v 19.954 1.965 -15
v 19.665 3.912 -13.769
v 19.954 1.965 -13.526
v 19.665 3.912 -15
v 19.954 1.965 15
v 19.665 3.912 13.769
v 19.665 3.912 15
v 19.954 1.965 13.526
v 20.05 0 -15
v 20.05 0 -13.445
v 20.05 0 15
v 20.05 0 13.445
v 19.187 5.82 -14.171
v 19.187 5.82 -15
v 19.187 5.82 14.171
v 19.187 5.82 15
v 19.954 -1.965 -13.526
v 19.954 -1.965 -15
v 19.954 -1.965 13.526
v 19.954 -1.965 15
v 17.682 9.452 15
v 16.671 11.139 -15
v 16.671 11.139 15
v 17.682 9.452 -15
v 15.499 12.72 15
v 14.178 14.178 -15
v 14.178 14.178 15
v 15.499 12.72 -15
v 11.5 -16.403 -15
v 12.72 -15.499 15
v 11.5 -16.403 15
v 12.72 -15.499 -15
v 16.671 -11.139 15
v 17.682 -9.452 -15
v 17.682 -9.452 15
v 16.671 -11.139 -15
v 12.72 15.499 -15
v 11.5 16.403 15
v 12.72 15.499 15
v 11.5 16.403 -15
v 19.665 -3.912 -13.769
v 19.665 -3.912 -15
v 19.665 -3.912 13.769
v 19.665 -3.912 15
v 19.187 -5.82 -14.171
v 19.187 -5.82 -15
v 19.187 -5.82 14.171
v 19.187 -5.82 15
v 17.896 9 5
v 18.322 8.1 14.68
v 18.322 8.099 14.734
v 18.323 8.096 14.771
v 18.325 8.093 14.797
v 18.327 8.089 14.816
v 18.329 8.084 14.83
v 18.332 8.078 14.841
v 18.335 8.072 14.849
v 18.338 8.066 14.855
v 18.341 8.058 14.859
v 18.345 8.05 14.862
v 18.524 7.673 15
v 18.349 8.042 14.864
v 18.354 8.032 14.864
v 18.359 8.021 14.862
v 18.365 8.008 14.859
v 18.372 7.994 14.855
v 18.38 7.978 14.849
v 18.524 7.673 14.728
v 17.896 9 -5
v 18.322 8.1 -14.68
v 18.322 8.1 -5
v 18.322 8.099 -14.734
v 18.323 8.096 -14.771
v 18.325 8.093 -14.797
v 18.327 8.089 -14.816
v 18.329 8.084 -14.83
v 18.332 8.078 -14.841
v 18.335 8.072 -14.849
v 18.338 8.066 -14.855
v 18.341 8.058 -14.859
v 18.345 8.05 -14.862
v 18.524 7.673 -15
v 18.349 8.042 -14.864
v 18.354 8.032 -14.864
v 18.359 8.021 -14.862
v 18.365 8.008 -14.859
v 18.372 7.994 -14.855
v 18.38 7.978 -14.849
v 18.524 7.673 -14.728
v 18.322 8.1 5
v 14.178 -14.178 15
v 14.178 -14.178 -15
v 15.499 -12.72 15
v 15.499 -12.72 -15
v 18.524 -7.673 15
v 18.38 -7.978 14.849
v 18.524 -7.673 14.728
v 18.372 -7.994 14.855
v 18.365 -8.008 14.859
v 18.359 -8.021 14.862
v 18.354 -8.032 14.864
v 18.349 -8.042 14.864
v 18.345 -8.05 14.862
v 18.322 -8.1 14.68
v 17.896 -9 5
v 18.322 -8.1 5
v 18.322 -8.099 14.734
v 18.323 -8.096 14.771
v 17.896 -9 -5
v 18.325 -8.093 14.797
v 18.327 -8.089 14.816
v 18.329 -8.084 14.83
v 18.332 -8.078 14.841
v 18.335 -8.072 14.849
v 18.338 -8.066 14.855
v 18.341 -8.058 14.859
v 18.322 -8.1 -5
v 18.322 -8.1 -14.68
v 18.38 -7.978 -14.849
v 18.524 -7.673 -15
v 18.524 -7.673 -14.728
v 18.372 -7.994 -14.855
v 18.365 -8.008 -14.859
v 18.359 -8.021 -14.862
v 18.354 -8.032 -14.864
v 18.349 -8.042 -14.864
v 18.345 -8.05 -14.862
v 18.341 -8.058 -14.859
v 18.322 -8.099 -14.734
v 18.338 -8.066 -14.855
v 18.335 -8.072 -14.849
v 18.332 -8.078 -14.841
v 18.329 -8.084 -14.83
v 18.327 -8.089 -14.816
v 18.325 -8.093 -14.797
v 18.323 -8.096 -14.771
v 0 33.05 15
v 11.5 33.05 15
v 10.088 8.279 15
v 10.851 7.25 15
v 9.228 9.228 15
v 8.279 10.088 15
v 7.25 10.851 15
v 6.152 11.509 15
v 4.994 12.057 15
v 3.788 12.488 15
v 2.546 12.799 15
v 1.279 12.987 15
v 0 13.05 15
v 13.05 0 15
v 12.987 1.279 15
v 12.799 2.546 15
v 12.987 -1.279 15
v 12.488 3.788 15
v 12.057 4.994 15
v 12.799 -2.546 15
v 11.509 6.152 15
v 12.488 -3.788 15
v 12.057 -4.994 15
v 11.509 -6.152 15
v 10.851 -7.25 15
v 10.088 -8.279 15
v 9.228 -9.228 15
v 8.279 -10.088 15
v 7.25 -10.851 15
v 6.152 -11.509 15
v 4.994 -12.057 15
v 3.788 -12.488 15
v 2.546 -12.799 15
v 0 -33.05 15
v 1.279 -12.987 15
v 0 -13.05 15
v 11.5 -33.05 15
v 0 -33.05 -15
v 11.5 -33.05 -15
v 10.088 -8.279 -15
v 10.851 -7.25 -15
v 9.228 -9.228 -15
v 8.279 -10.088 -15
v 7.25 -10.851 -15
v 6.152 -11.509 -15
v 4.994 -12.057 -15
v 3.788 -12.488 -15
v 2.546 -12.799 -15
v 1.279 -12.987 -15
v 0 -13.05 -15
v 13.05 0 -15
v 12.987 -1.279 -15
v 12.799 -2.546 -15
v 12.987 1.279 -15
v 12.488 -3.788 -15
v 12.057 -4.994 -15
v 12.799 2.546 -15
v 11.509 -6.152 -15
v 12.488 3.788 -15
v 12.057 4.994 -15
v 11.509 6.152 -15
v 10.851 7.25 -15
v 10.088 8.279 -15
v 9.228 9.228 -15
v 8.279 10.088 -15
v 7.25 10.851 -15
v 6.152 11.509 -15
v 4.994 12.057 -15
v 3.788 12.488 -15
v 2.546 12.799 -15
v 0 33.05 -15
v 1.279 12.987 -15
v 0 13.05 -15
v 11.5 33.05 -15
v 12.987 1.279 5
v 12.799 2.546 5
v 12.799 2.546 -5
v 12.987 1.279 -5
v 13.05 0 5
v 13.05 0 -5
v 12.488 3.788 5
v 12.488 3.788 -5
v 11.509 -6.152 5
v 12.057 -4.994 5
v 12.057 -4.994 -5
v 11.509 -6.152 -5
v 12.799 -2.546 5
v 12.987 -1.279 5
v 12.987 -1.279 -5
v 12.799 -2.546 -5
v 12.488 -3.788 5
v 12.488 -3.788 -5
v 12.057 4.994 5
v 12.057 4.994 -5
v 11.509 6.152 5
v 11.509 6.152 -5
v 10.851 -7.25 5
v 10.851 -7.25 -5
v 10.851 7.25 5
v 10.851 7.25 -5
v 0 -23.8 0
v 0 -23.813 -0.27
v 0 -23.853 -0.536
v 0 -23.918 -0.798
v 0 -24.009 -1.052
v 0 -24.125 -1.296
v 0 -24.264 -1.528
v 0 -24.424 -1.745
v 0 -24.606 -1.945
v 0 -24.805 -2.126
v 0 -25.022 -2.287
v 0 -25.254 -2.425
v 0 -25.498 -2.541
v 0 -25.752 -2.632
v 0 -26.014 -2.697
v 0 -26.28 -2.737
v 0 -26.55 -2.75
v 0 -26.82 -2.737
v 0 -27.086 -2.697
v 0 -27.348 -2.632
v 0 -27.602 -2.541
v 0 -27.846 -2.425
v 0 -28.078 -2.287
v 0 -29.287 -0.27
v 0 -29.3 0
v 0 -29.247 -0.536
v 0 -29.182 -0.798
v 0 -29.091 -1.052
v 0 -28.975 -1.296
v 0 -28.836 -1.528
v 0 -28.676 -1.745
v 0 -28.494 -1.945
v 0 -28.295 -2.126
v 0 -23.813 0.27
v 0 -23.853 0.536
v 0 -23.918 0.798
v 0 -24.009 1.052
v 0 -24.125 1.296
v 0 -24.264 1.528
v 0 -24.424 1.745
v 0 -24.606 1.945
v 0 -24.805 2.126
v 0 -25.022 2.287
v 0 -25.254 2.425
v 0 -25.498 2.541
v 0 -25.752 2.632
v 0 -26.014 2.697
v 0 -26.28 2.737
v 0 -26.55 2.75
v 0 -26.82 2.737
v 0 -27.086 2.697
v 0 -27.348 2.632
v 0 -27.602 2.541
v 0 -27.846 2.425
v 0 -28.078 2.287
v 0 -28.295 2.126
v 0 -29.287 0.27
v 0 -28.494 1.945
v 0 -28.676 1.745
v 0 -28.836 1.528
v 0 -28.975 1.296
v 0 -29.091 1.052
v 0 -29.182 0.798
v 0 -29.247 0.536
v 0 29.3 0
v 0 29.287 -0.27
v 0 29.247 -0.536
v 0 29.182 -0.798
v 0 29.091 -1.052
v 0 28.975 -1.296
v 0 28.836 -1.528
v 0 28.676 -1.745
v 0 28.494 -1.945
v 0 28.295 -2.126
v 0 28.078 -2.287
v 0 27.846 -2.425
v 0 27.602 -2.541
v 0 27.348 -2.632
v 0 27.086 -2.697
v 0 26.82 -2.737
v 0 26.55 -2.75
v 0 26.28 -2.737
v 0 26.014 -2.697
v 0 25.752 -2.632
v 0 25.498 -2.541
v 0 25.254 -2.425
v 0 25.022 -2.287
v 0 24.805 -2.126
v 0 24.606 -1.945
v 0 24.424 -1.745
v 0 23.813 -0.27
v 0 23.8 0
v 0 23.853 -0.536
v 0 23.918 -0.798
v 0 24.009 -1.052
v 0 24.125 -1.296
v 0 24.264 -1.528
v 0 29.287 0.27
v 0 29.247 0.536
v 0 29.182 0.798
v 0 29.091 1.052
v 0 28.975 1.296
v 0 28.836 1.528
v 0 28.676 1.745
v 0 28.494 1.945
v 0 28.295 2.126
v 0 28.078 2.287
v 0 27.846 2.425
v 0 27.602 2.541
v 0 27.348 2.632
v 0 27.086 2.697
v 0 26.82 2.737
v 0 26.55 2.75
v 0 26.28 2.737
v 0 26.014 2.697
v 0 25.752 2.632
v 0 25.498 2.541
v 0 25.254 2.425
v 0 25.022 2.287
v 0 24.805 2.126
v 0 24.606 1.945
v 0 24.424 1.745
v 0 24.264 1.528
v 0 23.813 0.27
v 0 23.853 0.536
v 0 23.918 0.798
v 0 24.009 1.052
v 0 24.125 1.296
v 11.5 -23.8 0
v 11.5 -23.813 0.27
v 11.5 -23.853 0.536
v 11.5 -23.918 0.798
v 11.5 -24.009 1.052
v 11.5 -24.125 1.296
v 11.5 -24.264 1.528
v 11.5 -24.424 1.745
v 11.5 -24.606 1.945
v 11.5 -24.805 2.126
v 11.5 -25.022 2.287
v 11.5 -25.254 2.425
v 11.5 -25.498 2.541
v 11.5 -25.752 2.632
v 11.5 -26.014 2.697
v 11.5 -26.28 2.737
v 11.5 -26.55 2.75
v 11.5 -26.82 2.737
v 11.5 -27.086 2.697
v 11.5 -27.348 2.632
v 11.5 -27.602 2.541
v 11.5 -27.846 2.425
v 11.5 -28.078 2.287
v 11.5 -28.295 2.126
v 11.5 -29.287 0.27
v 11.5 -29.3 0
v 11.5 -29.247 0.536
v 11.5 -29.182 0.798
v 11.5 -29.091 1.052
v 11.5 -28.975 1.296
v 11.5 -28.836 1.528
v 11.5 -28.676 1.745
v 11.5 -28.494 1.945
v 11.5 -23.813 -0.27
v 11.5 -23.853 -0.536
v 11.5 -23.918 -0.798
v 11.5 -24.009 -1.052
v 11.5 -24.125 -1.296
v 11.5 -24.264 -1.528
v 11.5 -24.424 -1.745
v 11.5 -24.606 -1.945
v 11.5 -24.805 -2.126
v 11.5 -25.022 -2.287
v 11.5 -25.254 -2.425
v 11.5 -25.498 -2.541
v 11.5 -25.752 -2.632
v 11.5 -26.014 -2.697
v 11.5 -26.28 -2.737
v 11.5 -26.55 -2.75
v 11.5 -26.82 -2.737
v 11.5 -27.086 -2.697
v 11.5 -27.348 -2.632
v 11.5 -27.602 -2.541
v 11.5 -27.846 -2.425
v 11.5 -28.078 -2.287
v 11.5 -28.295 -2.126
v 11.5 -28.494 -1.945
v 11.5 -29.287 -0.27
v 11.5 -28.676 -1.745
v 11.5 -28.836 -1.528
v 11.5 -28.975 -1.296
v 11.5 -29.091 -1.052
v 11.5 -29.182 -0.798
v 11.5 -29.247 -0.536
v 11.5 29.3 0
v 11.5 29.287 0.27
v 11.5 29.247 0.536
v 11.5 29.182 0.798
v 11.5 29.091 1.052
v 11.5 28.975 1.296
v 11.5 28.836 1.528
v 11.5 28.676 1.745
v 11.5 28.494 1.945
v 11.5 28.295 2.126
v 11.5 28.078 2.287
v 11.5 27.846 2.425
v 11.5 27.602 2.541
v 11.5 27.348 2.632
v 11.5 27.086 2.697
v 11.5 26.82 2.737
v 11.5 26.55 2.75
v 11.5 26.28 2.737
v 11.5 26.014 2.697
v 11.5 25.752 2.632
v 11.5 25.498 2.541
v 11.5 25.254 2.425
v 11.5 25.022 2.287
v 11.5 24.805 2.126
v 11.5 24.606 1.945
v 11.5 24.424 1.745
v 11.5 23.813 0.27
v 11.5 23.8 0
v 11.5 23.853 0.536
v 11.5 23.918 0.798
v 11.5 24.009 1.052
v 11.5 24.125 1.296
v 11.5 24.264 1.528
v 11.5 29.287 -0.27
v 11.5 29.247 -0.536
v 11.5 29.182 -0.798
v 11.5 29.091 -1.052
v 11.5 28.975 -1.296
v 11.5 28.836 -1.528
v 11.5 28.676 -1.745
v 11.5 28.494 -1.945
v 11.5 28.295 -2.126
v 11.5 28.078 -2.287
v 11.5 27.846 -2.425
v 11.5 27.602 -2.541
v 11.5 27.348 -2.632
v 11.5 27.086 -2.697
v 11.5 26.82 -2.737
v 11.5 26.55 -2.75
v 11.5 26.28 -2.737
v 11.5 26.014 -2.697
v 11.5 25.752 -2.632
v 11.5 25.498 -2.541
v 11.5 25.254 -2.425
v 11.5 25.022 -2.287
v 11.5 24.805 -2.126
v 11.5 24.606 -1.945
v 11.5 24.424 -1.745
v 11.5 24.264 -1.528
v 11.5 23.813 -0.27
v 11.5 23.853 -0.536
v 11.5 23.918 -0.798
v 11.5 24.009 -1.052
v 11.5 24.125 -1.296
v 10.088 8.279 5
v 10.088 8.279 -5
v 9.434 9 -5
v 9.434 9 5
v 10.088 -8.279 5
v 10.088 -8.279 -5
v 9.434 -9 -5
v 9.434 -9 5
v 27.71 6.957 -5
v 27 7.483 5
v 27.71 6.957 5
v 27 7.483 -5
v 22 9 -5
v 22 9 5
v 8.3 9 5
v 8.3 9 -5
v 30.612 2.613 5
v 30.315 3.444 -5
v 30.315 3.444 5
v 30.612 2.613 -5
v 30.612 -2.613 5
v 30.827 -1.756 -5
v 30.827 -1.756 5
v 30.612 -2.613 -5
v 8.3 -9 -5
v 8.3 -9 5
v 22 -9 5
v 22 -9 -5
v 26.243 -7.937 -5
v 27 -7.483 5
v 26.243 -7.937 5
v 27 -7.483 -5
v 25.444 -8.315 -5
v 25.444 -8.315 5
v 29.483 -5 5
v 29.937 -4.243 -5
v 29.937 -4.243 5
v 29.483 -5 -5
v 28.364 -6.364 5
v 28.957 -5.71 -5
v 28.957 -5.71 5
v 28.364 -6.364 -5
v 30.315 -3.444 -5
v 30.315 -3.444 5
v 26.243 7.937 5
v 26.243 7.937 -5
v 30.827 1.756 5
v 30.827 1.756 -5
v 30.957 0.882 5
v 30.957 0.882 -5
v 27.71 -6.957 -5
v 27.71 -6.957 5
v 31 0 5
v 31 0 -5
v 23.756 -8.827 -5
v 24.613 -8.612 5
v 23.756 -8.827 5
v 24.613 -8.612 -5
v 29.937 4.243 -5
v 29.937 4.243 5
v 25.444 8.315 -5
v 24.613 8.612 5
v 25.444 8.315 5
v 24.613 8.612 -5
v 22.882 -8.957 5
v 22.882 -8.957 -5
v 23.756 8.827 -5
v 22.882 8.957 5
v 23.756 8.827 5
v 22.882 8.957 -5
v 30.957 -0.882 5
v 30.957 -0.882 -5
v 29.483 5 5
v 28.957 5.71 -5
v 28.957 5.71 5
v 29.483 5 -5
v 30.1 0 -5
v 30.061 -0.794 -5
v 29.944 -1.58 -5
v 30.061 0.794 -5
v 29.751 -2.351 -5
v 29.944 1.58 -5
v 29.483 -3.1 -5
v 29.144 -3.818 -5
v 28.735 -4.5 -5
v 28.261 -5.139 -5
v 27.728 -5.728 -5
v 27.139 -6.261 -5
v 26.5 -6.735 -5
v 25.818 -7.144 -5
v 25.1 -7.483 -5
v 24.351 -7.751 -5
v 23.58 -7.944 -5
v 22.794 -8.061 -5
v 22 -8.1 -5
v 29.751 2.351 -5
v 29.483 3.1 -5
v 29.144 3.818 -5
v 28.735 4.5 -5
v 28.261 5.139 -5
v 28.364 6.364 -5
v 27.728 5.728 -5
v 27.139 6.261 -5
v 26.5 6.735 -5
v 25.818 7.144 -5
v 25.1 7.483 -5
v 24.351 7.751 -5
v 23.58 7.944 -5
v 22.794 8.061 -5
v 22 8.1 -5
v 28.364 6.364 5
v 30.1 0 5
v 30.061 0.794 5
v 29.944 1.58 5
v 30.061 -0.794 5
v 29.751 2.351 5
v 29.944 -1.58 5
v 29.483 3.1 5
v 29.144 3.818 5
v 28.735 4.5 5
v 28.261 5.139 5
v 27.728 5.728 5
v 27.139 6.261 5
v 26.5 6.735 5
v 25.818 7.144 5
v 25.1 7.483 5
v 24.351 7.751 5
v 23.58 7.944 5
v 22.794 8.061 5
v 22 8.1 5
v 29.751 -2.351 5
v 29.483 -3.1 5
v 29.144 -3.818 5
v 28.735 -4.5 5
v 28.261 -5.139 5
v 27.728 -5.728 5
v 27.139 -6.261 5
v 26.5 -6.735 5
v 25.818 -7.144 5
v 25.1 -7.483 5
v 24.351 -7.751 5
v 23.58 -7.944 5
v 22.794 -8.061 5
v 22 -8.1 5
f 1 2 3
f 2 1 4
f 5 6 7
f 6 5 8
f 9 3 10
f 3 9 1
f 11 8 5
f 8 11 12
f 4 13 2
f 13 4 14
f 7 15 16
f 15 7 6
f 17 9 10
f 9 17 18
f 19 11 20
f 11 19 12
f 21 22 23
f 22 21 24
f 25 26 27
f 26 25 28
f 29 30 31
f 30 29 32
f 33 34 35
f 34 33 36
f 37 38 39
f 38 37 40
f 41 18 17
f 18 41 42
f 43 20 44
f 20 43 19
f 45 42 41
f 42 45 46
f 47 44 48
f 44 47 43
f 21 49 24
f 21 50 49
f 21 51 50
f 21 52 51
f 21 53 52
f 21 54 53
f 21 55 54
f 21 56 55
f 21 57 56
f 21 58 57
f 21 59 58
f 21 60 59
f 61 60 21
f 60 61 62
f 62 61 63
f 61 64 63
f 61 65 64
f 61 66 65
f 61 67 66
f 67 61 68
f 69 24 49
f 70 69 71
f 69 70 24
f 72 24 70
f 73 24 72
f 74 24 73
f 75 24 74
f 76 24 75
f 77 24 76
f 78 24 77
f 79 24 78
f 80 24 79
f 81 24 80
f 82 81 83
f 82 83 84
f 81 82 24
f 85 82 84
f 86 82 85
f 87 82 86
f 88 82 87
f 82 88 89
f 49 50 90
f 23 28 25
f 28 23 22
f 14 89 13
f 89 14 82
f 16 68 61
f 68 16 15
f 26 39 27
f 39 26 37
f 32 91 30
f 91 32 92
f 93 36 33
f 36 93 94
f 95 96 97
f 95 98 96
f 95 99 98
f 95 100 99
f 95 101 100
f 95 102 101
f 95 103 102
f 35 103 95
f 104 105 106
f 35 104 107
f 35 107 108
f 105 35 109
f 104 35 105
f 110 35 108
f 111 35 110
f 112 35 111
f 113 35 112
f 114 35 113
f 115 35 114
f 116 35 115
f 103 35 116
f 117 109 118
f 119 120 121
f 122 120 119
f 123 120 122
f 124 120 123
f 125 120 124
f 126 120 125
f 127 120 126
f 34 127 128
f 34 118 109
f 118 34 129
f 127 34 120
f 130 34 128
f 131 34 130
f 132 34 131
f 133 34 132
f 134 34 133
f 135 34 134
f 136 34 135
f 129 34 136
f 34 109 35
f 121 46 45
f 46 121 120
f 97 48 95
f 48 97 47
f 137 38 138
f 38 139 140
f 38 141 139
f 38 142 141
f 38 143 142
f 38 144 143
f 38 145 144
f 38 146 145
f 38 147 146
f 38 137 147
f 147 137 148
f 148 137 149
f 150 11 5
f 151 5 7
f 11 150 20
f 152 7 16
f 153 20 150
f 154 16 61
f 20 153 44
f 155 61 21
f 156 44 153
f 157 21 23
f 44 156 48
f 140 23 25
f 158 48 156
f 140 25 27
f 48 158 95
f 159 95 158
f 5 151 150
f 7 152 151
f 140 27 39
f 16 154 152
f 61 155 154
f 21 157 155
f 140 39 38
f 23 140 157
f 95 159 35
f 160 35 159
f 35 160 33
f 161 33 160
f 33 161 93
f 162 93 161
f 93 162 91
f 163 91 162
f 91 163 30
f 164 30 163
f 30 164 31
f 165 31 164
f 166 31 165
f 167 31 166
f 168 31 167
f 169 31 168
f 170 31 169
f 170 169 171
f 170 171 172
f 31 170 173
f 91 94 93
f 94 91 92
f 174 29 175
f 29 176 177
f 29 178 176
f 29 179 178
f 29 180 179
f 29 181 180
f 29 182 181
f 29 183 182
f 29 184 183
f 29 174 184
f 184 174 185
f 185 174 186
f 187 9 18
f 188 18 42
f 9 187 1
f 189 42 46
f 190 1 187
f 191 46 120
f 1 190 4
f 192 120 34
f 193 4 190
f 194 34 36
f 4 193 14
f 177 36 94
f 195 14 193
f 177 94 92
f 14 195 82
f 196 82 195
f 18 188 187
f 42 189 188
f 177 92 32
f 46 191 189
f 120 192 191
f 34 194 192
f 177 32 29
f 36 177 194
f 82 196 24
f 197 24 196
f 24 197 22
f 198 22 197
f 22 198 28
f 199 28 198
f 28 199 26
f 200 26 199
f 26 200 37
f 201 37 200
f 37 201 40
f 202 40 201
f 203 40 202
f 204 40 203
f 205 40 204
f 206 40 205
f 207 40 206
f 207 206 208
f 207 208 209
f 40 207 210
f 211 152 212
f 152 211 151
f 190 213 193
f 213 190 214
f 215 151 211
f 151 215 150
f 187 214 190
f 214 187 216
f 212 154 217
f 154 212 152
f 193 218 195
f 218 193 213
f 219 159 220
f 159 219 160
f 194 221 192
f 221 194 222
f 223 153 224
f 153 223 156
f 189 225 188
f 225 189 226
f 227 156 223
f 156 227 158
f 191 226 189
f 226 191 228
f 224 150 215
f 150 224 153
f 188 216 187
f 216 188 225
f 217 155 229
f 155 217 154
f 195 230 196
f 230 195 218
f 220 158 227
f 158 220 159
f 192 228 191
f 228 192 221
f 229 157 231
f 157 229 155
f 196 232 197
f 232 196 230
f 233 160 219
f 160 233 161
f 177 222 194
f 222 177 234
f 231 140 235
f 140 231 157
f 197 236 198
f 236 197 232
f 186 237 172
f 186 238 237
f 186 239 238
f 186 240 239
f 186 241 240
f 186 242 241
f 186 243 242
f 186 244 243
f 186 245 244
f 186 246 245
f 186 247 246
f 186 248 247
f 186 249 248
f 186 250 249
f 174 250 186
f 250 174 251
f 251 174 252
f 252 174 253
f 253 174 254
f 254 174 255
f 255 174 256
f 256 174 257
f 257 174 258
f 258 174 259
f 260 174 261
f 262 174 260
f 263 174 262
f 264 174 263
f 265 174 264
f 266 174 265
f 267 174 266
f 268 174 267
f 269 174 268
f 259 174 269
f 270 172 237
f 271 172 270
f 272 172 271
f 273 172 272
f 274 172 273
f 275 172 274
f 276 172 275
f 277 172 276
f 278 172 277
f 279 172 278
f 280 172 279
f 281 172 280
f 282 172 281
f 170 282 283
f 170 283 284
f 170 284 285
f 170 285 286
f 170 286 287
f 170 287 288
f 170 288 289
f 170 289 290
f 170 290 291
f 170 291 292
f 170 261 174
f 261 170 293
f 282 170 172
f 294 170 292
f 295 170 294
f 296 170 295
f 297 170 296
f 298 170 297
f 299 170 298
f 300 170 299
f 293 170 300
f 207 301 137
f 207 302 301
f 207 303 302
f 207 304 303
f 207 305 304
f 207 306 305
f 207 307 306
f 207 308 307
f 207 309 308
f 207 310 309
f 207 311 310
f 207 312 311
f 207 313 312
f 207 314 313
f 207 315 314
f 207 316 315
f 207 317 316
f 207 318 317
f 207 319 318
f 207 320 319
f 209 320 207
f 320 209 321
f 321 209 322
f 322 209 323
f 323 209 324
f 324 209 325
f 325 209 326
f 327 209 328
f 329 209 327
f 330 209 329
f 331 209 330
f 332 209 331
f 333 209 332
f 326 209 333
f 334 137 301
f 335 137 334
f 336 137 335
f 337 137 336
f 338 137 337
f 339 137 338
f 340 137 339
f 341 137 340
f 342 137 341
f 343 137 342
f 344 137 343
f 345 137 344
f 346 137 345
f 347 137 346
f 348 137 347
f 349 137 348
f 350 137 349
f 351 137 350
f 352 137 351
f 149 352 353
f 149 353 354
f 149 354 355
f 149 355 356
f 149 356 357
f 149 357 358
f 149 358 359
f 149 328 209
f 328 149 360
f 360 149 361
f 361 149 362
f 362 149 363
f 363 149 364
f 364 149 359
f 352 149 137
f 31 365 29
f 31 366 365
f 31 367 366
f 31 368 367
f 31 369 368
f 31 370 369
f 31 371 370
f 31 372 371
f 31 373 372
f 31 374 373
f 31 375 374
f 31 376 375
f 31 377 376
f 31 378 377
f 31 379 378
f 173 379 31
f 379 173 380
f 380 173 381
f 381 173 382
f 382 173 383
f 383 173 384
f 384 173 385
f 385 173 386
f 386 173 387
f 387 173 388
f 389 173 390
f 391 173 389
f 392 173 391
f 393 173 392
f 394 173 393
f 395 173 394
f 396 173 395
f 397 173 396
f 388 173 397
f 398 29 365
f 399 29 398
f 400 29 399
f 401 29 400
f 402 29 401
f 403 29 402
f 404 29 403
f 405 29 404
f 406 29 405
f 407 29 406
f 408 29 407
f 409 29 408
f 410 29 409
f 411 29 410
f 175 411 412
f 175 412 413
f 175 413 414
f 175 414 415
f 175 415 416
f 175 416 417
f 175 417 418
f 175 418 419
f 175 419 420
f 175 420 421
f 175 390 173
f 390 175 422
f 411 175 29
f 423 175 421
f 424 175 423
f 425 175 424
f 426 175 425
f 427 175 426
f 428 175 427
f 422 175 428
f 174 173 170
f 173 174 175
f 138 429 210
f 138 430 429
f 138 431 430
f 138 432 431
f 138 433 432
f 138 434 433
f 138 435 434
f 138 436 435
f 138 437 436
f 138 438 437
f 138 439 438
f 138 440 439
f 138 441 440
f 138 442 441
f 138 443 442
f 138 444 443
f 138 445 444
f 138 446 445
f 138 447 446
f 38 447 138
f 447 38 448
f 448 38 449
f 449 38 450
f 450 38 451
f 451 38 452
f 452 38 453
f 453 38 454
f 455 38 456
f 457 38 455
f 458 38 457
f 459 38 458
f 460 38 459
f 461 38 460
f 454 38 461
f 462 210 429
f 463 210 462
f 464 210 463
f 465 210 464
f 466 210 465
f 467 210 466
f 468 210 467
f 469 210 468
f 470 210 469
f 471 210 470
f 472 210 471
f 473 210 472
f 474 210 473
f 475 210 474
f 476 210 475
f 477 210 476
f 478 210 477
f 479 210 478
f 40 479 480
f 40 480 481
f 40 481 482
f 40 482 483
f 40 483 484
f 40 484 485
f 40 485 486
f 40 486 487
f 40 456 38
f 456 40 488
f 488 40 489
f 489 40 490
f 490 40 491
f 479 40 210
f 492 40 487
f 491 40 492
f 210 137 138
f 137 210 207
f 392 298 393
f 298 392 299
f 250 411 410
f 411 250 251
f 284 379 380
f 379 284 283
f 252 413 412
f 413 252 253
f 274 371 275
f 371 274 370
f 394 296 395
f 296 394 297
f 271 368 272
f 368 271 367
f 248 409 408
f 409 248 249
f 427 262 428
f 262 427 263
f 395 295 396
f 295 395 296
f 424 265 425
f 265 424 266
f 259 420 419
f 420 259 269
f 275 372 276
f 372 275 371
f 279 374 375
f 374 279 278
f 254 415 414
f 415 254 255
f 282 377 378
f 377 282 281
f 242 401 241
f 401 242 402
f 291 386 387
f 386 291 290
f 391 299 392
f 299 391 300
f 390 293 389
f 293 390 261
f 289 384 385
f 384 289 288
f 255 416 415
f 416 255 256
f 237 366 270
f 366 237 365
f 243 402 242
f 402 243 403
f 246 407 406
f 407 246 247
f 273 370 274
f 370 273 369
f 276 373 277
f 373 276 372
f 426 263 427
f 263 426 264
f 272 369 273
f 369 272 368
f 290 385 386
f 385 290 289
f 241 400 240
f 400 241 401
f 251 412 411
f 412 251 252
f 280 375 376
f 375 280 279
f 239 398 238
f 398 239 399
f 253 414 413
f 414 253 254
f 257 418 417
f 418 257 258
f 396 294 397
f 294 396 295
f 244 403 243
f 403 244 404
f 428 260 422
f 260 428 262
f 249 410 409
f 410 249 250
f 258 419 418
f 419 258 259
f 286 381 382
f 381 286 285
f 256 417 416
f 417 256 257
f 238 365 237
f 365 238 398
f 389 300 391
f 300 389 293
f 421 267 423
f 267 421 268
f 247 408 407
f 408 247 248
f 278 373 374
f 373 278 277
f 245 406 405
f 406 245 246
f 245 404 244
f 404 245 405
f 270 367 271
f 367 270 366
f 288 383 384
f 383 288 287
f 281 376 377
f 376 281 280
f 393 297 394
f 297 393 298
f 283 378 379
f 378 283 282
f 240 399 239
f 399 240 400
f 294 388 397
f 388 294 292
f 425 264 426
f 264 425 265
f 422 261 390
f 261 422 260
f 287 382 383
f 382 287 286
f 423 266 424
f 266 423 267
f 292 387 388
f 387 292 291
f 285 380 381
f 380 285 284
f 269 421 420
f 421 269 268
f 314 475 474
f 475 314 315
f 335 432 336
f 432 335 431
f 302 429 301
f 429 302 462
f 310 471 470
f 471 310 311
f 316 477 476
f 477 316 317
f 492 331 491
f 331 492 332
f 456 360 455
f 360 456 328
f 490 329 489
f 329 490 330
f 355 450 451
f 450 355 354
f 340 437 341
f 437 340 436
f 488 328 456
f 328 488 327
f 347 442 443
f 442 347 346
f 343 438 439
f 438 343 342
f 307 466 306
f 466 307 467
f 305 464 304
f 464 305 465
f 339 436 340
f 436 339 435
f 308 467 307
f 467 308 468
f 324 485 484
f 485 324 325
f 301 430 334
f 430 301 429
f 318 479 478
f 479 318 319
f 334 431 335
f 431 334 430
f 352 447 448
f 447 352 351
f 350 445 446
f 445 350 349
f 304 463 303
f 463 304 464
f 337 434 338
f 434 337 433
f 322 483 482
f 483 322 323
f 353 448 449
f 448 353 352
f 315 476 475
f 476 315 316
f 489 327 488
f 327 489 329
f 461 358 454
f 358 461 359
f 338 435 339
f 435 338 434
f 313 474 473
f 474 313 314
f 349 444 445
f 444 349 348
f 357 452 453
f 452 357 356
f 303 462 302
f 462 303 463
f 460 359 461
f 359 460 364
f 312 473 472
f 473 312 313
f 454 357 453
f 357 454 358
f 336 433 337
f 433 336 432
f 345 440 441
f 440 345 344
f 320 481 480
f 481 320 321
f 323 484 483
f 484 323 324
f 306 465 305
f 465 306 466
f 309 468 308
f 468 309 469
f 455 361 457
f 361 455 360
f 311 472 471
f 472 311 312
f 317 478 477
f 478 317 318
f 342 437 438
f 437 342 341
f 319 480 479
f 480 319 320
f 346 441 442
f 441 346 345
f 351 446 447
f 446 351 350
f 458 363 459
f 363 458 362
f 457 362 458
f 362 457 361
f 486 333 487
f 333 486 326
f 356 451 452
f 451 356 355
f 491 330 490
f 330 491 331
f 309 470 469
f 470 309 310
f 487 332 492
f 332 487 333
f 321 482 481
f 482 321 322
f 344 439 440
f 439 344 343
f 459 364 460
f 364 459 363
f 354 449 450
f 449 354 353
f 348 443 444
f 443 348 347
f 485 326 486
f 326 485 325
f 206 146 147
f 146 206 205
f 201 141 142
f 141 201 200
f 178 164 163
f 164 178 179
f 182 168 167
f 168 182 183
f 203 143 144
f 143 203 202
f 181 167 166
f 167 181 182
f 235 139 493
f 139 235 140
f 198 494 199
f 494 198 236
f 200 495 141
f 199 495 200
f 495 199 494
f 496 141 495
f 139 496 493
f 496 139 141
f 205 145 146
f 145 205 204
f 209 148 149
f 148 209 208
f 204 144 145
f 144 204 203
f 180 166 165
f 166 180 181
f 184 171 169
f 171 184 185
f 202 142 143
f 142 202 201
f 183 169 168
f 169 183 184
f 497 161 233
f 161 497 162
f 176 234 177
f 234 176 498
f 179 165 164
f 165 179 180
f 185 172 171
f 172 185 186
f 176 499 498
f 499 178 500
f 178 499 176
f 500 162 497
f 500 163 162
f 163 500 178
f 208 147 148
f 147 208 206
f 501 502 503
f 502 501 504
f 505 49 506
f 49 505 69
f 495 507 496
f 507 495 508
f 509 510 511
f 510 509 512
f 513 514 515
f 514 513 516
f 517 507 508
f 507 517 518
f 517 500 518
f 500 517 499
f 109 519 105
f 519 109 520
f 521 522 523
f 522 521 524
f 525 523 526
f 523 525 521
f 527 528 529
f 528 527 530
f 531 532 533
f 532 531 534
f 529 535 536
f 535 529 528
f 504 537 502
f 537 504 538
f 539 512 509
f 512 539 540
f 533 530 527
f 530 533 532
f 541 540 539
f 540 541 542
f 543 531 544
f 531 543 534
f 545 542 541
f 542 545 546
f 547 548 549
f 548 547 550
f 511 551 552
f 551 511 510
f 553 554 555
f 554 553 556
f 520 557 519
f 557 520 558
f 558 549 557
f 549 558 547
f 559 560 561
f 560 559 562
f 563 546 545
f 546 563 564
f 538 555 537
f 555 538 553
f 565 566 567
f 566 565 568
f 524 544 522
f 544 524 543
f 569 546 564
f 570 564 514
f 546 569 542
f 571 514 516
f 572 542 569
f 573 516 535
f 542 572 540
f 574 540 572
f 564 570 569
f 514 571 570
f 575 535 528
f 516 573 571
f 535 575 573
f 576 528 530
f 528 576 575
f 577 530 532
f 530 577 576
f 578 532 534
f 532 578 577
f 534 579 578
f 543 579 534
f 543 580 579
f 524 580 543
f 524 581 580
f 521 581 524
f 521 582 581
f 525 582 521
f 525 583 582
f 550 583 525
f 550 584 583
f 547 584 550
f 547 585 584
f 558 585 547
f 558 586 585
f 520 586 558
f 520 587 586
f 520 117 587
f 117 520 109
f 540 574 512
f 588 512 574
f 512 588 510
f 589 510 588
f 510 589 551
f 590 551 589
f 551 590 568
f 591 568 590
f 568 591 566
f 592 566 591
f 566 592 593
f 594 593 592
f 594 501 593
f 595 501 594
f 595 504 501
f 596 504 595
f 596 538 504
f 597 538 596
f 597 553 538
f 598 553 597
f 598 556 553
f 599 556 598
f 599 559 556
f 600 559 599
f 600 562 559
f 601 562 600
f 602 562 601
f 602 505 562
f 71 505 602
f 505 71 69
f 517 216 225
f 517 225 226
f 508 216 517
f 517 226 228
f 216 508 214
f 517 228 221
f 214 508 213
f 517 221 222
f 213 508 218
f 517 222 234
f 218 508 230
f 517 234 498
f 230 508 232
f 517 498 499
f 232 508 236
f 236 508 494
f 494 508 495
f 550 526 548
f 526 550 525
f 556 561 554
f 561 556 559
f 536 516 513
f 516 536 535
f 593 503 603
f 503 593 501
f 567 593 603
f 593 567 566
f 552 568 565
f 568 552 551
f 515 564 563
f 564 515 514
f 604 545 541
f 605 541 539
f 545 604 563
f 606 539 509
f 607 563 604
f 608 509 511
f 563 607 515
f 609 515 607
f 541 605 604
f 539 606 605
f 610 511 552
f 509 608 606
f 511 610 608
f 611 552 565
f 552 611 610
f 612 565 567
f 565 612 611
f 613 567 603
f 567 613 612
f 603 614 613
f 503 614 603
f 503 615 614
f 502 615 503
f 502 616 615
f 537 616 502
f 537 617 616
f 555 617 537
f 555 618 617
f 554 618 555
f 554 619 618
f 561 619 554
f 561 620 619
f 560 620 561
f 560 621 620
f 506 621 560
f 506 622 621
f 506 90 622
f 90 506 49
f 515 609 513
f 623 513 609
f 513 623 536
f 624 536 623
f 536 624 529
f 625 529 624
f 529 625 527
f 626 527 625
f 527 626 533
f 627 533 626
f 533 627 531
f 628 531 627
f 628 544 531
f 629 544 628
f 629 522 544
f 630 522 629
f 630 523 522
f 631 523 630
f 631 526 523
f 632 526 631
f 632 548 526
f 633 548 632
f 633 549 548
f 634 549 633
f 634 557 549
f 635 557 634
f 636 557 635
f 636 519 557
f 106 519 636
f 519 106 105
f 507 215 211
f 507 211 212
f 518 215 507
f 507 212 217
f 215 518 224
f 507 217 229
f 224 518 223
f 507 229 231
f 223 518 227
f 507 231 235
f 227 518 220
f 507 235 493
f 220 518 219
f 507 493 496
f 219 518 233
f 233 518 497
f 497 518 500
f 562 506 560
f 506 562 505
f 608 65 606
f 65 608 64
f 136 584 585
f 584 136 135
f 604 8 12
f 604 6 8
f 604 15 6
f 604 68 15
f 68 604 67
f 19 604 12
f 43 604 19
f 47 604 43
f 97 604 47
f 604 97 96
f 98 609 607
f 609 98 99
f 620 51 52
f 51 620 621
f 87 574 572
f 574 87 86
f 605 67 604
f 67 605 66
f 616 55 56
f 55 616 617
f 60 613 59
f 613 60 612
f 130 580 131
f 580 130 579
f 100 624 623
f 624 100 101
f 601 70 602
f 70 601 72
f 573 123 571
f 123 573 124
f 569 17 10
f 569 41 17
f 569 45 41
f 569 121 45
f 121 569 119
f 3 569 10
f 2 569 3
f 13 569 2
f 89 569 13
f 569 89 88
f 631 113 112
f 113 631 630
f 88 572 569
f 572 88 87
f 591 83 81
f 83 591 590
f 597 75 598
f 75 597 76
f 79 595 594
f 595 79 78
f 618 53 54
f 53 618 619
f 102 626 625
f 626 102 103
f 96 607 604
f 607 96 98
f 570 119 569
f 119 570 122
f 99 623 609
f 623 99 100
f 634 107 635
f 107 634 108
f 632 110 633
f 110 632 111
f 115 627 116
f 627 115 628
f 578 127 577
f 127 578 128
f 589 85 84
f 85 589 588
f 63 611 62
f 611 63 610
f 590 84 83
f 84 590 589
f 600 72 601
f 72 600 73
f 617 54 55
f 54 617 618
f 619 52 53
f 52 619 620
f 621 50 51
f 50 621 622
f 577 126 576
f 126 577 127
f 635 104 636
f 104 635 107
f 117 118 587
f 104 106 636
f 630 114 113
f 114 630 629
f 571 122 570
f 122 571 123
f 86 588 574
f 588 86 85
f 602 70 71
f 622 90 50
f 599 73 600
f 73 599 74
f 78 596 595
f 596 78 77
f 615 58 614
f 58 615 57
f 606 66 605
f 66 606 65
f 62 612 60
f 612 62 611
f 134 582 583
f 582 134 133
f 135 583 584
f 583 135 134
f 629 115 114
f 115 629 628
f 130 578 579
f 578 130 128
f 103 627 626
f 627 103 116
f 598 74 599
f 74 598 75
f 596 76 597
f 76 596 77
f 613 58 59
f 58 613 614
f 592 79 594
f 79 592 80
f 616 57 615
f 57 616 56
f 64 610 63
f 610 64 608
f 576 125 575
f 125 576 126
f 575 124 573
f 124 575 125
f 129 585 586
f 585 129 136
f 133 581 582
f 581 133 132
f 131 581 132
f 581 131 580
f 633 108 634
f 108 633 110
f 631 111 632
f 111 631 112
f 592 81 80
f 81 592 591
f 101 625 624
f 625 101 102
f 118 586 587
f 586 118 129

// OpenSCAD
// file: common.scad
// Shared parameters and helper modules for the LawnBerry Pi zero-turn
// actuation mounts (Toro TimeCutter 50" conversion).
//
// EVERY dimension marked "MEASURE" is a placeholder. The Toro operator's
// manual (form 3465-589) carries no dimensioned drawings, so frame and
// lever sizes must come off the actual machine with calipers before you
// print anything structural. See README.md.

$fn = 64;

// ---------------------------------------------------------------- machine
// MEASURE: outside diameter of the frame tube the servo bracket clamps to.
frame_tube_od     = 38.1;   // 1.5" round tube, placeholder
// MEASURE: outside diameter of the lap-bar tube the pushrod clamp grips.
lapbar_tube_od    = 25.4;   // 1.0" round tube, placeholder
// MEASURE: wall thickness available for the throttle-servo mounting face.
panel_thickness   = 2.0;

// ----------------------------------------------------------------- servo
// DSSERVO RDS51150SG, from the manufacturer spec: 65 x 30 x 48 mm.
// The servo ships with U-shaped aluminium holders; these mounts bolt to
// those holders rather than gripping the servo body, which is both
// stronger and avoids trapping heat.
servo_body_l      = 65;
servo_body_w      = 30;
servo_body_h      = 48;
// MEASURE: hole spacing on the supplied U-bracket. Slots absorb error.
servo_bracket_hole_spacing_x = 50;
servo_bracket_hole_spacing_y = 20;

// --------------------------------------------------------------- fixings
m3_clear          = 3.4;
m4_clear          = 4.5;
m5_clear          = 5.5;
m6_clear          = 6.4;
m6_nut_af         = 10.0;   // across flats
m6_nut_h          = 5.2;
m5_nut_af         = 8.0;
m5_nut_h          = 4.7;

// ----------------------------------------------------------------- print
wall              = 5.0;    // structural wall; do not thin below 4 mm
clamp_wall        = 7.0;    // wall around clamped tubes
clearance         = 0.35;   // printer fit clearance, tune per machine

// ---------------------------------------------------------------- helpers

// Hex pocket for a captive nut, opening along +Z.
module nut_pocket(af, h) {
    cylinder(h = h, d = af / cos(30), $fn = 6);
}

// Slotted hole: lets you shim out mounting error without reprinting.
module slot(d, len, h) {
    hull() {
        translate([-len / 2, 0, 0]) cylinder(h = h, d = d);
        translate([ len / 2, 0, 0]) cylinder(h = h, d = d);
    }
}

// One half of a split tube clamp.
//
// Geometry: tube axis along Z. The split plane is X = 0, so this half
// occupies X >= 0 and the mating half is its mirror. Bolt ears stand off
// in +/-Y and the clamp bolts run along X through both halves. Any
// mounting boss extends in +X, clear of the ears.
//
// half = 0 -> the half carrying the mounting boss (bolt heads this side)
// half = 1 -> the plain closing half (captive nuts)
module tube_clamp_half(tube_od, width, ear_bolt = m6_clear,
                       ear_len = 16, half = 0) {
    r_in    = tube_od / 2 + clearance;
    r_out   = r_in + clamp_wall;
    ear_thk = ear_bolt + 6;              // ear thickness along X
    ear_yi  = r_in * 0.5;                // inner edge, buried in the barrel
    ear_yo  = r_out + ear_len;           // outer edge
    bolt_y  = r_out + ear_len * 0.5;
    nut_h   = (ear_bolt > 5) ? m6_nut_h : m5_nut_h;
    nut_af  = (ear_bolt > 5) ? m6_nut_af : m5_nut_af;
    difference() {
        union() {
            // Half barrel, X >= 0
            intersection() {
                difference() {
                    cylinder(h = width, r = r_out, center = true);
                    cylinder(h = width + 2, r = r_in, center = true);
                }
                translate([0, -r_out - 1, -width / 2 - 1])
                    cube([r_out + 1, 2 * r_out + 2, width + 2]);
            }
            // Bolt ears, both sides of the barrel
            for (s = [-1, 1])
                translate([ear_thk / 2,
                           s * (ear_yi + ear_yo) / 2,
                           0])
                    cube([ear_thk, ear_yo - ear_yi, width], center = true);
        }
        // Bore (re-cut so the ears cannot intrude)
        cylinder(h = width + 2, r = r_in, center = true);
        // Clamp bolt holes, axis along X
        for (s = [-1, 1])
            translate([0, s * bolt_y, 0])
                rotate([0, 90, 0])
                    cylinder(h = ear_thk * 4, d = ear_bolt, center = true);
        // Captive nuts in the closing half only
        if (half == 1)
            for (s = [-1, 1])
                translate([ear_thk + 0.01, s * bolt_y, 0])
                    rotate([0, -90, 0])
                        nut_pocket(nut_af, nut_h + 0.5);
    }
}
// main file
// Lap-bar pushrod clamp.
//
// Grips the motion-control (lap bar) tube and gives the pushrod a single
// ball-joint anchor point. Print TWO (mirror is not required -- the part
// is symmetric; set anchor_side per lever).
//
// CRITICAL GEOMETRY CONSTRAINT
// Per the Toro operator's manual (form 3465-589), the motion-control
// levers move on TWO axes:
//   * fore/aft  -- Fast / Slow / NEUTRAL / Reverse  (what the servo drives)
//   * outboard  -- PARK, which engages the parking brake AND is required
//                  by the safety-interlock system before the engine will
//                  crank.
// The servo linkage must NEVER obstruct the outboard swing. Two features
// here protect that:
//   1. anchor_offset pushes the ball joint INBOARD of the lever, out of
//      the outboard swing arc.
//   2. The pushrod uses ball/heim joints at both ends plus a quick-release
//      clevis pin at this end, so the linkage can be unpinned in seconds
//      to restore full manual PARK travel.
// Verify the full outboard swing by hand, with the linkage fitted, before
// running the engine.
//
//   openscad -o lapbar_pushrod_clamp.stl lapbar_pushrod_clamp.scad

include <common.scad>

clamp_width    = 30;    // along the lap-bar tube
anchor_offset  = 22;    // tube centre -> ball-joint eye, INBOARD
anchor_thk     = 10;    // eye thickness
eye_bore       = m6_clear;   // M6 ball joint / clevis pin
eye_od         = 18;

module anchor_eye() {
    difference() {
        hull() {
            cylinder(h = anchor_thk, d = eye_od, center = true);
            translate([-anchor_offset * 0.6, 0, 0])
                cube([1, eye_od, anchor_thk], center = true);
        }
        cylinder(h = anchor_thk + 2, d = eye_bore, center = true);
    }
}

module lapbar_pushrod_clamp() {
    r_out = lapbar_tube_od / 2 + clamp_wall;
    union() {
        tube_clamp_half(lapbar_tube_od, clamp_width, ear_bolt = m5_clear,
                        ear_len = 13, half = 0);
        // Arm carrying the eye, offset inboard and clear of the swing
        translate([anchor_offset, 0, 0]) anchor_eye();
        hull() {
            translate([r_out - 2, 0, 0])
                cube([1, eye_od * 0.9, clamp_width], center = true);
            translate([anchor_offset, 0, 0])
                cylinder(h = anchor_thk, d = eye_od * 0.9, center = true);
        }
    }
}

lapbar_pushrod_clamp();
